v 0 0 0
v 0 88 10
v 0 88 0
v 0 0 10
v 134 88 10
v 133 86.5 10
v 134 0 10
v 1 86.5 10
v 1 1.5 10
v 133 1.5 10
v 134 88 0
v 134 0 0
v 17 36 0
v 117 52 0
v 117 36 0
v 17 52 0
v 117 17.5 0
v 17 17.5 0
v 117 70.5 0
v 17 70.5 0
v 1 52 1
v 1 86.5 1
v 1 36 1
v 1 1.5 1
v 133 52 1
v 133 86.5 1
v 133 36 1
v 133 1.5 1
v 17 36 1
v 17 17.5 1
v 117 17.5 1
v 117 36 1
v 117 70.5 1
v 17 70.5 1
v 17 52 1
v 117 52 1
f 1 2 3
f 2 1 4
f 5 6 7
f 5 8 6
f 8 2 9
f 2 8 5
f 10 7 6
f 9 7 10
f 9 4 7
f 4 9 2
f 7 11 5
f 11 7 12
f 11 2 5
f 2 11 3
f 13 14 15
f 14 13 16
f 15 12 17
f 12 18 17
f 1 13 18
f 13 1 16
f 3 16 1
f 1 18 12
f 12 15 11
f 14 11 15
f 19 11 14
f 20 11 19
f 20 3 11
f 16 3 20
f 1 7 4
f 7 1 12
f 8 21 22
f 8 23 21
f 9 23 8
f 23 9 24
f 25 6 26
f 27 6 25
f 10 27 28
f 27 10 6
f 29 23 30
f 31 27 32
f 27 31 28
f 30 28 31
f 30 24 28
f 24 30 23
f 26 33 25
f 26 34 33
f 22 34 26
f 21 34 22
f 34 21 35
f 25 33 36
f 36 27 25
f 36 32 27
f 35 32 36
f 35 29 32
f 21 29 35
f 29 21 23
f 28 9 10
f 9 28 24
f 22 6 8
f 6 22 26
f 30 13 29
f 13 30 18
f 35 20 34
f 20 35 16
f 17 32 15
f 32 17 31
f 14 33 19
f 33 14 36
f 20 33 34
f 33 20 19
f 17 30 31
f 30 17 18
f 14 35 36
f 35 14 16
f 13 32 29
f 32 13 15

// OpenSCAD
// file: ../standard-organizers/container.scad
function defaultBottomThickness() = 1;
function defaultBottomClearance() = 16;
function defaultMinWallThickness() = 1;
function defaultWallClearance() = 16;
function defaultSideMultiple() = 2;

function getOuterWidth(innerWidth, minWallThickness, sideMultiple) = ceil((innerWidth + 2*minWallThickness)/sideMultiple)*sideMultiple;
function getOuterDepth(innerDepth, minWallThickness, sideMultiple) = ceil((innerDepth + 2*minWallThickness)/sideMultiple)*sideMultiple;

function getSideWallThickness(innerWidth, minWallThickness, sideMultiple) = (getOuterWidth(innerWidth, minWallThickness, sideMultiple) - innerWidth)/2;
function getFrontWallThickness(innerDepth, minWallThickness, sideMultiple) = (getOuterDepth(innerDepth, minWallThickness, sideMultiple) - innerDepth)/2;

function getFrontHoleWidth(innerWidth, frontWallClearance) = max(5, innerWidth - 2*frontWallClearance);
function getSideHoleDepth(innerDepth, sideWallClearance) = max(5, innerDepth - 2*sideWallClearance);

function getFrontHole(innerWidth, innerDepth, outerHeight, bottomClearance, minWallThickness, frontWallClearance, sideMultiple) = [
  [
    getSideWallThickness(innerWidth, minWallThickness, sideMultiple) + (innerWidth/2 - getFrontHoleWidth(innerWidth, frontWallClearance)/2),
    0,
    bottomClearance
  ],
  [
    getFrontHoleWidth(innerWidth, frontWallClearance),
    getOuterDepth(innerDepth, minWallThickness, sideMultiple),
    outerHeight
  ]
];

function getSideHole(innerWidth, innerDepth, outerHeight, bottomClearance, minWallThickness, sideWallClearance, sideMultiple) = [
  [
    0,
    getFrontWallThickness(innerDepth, minWallThickness, sideMultiple) + (innerDepth/2 - getSideHoleDepth(innerDepth, sideWallClearance)/2),
    bottomClearance
  ],
  [
    getOuterWidth(innerWidth, minWallThickness, sideMultiple),
    getSideHoleDepth(innerDepth, sideWallClearance),
    outerHeight
  ]
];

module container (
  innerWidth,
  innerDepth,
  outerHeight,
  type = "solid",
  bottomThickness = defaultBottomThickness(),
  bottomClearance = defaultBottomClearance(),
  minWallThickness = defaultMinWallThickness(),
  frontWallClearance = defaultWallClearance(),
  sideWallClearance = defaultWallClearance(),
  sideMultiple = defaultSideMultiple()
) {
  innerHeight = outerHeight - bottomThickness;

  outerWidth = getOuterWidth(innerWidth, minWallThickness, sideMultiple);
  outerDepth = getOuterDepth(innerDepth, minWallThickness, sideMultiple);
  sideWallThickness = getSideWallThickness(innerWidth, minWallThickness, sideMultiple);
  frontWallThickness = getFrontWallThickness(innerDepth, minWallThickness, sideMultiple);

  echo("File dimensions", innerWidth, innerDepth, outerHeight);
  echo("Outer dimensions", outerWidth, outerDepth, outerHeight);
  echo("Walls", sideWallThickness, frontWallThickness);

  baseHoleWidth = max(5, innerWidth - 2*bottomClearance);
  holeWidth = baseHoleWidth > innerWidth ? innerWidth/2 : baseHoleWidth;
  baseHoleDepth = max(5, innerDepth - 2*bottomClearance);
  holeDepth = baseHoleDepth > innerDepth ? innerDepth/2 : baseHoleDepth;
  holeX = sideWallThickness + innerWidth/2 - holeWidth/2;
  holeY = frontWallThickness + innerDepth/2 - holeDepth/2;

  frontHole = getFrontHole(
    innerWidth,
    innerDepth,
    outerHeight,
    bottomClearance,
    minWallThickness,
    frontWallClearance,
    sideMultiple
  );
  frontHolePosition = frontHole[0];
  frontHoleDimesions = frontHole[1];

  sideHole = getSideHole(
    innerWidth,
    innerDepth,
    outerHeight,
    bottomClearance,
    minWallThickness,
    sideWallClearance,
    sideMultiple
  );
  sideHolePosition = sideHole[0];
  sideHoleDimensions = sideHole[1];

  difference() {
    // Outer box
    cube([outerWidth, outerDepth, outerHeight]);

    // Inner box
    translate([sideWallThickness, frontWallThickness, bottomThickness])
    cube([innerWidth, innerDepth, innerHeight]);

    // Bottom hole
    translate([holeX, holeY, 0])
    cube([holeWidth, holeDepth, bottomThickness]);

    if(type == "hollow") {
      // Front and back hole
      translate(frontHolePosition)
      cube(frontHoleDimesions);

      // Side holes
      translate(sideHolePosition)
      cube(sideHoleDimensions);
    }
  }
}
// main file
use <../standard-organizers/container.scad>;

innerWidth = 132;
innerDepth = 85;
minWallThickness = defaultMinWallThickness();
sideMultiple = defaultSideMultiple();

outerWidth = getOuterWidth(innerWidth, minWallThickness, sideMultiple);
outerDepth = getOuterDepth(innerDepth, minWallThickness, sideMultiple);

plateDepth = defaultBottomClearance();
plate = [
  outerWidth,
  plateDepth,
  defaultBottomThickness()
];

container(innerWidth, innerDepth, 10);

translate([0, outerDepth/2 - plateDepth/2, 0])
cube(plate);
